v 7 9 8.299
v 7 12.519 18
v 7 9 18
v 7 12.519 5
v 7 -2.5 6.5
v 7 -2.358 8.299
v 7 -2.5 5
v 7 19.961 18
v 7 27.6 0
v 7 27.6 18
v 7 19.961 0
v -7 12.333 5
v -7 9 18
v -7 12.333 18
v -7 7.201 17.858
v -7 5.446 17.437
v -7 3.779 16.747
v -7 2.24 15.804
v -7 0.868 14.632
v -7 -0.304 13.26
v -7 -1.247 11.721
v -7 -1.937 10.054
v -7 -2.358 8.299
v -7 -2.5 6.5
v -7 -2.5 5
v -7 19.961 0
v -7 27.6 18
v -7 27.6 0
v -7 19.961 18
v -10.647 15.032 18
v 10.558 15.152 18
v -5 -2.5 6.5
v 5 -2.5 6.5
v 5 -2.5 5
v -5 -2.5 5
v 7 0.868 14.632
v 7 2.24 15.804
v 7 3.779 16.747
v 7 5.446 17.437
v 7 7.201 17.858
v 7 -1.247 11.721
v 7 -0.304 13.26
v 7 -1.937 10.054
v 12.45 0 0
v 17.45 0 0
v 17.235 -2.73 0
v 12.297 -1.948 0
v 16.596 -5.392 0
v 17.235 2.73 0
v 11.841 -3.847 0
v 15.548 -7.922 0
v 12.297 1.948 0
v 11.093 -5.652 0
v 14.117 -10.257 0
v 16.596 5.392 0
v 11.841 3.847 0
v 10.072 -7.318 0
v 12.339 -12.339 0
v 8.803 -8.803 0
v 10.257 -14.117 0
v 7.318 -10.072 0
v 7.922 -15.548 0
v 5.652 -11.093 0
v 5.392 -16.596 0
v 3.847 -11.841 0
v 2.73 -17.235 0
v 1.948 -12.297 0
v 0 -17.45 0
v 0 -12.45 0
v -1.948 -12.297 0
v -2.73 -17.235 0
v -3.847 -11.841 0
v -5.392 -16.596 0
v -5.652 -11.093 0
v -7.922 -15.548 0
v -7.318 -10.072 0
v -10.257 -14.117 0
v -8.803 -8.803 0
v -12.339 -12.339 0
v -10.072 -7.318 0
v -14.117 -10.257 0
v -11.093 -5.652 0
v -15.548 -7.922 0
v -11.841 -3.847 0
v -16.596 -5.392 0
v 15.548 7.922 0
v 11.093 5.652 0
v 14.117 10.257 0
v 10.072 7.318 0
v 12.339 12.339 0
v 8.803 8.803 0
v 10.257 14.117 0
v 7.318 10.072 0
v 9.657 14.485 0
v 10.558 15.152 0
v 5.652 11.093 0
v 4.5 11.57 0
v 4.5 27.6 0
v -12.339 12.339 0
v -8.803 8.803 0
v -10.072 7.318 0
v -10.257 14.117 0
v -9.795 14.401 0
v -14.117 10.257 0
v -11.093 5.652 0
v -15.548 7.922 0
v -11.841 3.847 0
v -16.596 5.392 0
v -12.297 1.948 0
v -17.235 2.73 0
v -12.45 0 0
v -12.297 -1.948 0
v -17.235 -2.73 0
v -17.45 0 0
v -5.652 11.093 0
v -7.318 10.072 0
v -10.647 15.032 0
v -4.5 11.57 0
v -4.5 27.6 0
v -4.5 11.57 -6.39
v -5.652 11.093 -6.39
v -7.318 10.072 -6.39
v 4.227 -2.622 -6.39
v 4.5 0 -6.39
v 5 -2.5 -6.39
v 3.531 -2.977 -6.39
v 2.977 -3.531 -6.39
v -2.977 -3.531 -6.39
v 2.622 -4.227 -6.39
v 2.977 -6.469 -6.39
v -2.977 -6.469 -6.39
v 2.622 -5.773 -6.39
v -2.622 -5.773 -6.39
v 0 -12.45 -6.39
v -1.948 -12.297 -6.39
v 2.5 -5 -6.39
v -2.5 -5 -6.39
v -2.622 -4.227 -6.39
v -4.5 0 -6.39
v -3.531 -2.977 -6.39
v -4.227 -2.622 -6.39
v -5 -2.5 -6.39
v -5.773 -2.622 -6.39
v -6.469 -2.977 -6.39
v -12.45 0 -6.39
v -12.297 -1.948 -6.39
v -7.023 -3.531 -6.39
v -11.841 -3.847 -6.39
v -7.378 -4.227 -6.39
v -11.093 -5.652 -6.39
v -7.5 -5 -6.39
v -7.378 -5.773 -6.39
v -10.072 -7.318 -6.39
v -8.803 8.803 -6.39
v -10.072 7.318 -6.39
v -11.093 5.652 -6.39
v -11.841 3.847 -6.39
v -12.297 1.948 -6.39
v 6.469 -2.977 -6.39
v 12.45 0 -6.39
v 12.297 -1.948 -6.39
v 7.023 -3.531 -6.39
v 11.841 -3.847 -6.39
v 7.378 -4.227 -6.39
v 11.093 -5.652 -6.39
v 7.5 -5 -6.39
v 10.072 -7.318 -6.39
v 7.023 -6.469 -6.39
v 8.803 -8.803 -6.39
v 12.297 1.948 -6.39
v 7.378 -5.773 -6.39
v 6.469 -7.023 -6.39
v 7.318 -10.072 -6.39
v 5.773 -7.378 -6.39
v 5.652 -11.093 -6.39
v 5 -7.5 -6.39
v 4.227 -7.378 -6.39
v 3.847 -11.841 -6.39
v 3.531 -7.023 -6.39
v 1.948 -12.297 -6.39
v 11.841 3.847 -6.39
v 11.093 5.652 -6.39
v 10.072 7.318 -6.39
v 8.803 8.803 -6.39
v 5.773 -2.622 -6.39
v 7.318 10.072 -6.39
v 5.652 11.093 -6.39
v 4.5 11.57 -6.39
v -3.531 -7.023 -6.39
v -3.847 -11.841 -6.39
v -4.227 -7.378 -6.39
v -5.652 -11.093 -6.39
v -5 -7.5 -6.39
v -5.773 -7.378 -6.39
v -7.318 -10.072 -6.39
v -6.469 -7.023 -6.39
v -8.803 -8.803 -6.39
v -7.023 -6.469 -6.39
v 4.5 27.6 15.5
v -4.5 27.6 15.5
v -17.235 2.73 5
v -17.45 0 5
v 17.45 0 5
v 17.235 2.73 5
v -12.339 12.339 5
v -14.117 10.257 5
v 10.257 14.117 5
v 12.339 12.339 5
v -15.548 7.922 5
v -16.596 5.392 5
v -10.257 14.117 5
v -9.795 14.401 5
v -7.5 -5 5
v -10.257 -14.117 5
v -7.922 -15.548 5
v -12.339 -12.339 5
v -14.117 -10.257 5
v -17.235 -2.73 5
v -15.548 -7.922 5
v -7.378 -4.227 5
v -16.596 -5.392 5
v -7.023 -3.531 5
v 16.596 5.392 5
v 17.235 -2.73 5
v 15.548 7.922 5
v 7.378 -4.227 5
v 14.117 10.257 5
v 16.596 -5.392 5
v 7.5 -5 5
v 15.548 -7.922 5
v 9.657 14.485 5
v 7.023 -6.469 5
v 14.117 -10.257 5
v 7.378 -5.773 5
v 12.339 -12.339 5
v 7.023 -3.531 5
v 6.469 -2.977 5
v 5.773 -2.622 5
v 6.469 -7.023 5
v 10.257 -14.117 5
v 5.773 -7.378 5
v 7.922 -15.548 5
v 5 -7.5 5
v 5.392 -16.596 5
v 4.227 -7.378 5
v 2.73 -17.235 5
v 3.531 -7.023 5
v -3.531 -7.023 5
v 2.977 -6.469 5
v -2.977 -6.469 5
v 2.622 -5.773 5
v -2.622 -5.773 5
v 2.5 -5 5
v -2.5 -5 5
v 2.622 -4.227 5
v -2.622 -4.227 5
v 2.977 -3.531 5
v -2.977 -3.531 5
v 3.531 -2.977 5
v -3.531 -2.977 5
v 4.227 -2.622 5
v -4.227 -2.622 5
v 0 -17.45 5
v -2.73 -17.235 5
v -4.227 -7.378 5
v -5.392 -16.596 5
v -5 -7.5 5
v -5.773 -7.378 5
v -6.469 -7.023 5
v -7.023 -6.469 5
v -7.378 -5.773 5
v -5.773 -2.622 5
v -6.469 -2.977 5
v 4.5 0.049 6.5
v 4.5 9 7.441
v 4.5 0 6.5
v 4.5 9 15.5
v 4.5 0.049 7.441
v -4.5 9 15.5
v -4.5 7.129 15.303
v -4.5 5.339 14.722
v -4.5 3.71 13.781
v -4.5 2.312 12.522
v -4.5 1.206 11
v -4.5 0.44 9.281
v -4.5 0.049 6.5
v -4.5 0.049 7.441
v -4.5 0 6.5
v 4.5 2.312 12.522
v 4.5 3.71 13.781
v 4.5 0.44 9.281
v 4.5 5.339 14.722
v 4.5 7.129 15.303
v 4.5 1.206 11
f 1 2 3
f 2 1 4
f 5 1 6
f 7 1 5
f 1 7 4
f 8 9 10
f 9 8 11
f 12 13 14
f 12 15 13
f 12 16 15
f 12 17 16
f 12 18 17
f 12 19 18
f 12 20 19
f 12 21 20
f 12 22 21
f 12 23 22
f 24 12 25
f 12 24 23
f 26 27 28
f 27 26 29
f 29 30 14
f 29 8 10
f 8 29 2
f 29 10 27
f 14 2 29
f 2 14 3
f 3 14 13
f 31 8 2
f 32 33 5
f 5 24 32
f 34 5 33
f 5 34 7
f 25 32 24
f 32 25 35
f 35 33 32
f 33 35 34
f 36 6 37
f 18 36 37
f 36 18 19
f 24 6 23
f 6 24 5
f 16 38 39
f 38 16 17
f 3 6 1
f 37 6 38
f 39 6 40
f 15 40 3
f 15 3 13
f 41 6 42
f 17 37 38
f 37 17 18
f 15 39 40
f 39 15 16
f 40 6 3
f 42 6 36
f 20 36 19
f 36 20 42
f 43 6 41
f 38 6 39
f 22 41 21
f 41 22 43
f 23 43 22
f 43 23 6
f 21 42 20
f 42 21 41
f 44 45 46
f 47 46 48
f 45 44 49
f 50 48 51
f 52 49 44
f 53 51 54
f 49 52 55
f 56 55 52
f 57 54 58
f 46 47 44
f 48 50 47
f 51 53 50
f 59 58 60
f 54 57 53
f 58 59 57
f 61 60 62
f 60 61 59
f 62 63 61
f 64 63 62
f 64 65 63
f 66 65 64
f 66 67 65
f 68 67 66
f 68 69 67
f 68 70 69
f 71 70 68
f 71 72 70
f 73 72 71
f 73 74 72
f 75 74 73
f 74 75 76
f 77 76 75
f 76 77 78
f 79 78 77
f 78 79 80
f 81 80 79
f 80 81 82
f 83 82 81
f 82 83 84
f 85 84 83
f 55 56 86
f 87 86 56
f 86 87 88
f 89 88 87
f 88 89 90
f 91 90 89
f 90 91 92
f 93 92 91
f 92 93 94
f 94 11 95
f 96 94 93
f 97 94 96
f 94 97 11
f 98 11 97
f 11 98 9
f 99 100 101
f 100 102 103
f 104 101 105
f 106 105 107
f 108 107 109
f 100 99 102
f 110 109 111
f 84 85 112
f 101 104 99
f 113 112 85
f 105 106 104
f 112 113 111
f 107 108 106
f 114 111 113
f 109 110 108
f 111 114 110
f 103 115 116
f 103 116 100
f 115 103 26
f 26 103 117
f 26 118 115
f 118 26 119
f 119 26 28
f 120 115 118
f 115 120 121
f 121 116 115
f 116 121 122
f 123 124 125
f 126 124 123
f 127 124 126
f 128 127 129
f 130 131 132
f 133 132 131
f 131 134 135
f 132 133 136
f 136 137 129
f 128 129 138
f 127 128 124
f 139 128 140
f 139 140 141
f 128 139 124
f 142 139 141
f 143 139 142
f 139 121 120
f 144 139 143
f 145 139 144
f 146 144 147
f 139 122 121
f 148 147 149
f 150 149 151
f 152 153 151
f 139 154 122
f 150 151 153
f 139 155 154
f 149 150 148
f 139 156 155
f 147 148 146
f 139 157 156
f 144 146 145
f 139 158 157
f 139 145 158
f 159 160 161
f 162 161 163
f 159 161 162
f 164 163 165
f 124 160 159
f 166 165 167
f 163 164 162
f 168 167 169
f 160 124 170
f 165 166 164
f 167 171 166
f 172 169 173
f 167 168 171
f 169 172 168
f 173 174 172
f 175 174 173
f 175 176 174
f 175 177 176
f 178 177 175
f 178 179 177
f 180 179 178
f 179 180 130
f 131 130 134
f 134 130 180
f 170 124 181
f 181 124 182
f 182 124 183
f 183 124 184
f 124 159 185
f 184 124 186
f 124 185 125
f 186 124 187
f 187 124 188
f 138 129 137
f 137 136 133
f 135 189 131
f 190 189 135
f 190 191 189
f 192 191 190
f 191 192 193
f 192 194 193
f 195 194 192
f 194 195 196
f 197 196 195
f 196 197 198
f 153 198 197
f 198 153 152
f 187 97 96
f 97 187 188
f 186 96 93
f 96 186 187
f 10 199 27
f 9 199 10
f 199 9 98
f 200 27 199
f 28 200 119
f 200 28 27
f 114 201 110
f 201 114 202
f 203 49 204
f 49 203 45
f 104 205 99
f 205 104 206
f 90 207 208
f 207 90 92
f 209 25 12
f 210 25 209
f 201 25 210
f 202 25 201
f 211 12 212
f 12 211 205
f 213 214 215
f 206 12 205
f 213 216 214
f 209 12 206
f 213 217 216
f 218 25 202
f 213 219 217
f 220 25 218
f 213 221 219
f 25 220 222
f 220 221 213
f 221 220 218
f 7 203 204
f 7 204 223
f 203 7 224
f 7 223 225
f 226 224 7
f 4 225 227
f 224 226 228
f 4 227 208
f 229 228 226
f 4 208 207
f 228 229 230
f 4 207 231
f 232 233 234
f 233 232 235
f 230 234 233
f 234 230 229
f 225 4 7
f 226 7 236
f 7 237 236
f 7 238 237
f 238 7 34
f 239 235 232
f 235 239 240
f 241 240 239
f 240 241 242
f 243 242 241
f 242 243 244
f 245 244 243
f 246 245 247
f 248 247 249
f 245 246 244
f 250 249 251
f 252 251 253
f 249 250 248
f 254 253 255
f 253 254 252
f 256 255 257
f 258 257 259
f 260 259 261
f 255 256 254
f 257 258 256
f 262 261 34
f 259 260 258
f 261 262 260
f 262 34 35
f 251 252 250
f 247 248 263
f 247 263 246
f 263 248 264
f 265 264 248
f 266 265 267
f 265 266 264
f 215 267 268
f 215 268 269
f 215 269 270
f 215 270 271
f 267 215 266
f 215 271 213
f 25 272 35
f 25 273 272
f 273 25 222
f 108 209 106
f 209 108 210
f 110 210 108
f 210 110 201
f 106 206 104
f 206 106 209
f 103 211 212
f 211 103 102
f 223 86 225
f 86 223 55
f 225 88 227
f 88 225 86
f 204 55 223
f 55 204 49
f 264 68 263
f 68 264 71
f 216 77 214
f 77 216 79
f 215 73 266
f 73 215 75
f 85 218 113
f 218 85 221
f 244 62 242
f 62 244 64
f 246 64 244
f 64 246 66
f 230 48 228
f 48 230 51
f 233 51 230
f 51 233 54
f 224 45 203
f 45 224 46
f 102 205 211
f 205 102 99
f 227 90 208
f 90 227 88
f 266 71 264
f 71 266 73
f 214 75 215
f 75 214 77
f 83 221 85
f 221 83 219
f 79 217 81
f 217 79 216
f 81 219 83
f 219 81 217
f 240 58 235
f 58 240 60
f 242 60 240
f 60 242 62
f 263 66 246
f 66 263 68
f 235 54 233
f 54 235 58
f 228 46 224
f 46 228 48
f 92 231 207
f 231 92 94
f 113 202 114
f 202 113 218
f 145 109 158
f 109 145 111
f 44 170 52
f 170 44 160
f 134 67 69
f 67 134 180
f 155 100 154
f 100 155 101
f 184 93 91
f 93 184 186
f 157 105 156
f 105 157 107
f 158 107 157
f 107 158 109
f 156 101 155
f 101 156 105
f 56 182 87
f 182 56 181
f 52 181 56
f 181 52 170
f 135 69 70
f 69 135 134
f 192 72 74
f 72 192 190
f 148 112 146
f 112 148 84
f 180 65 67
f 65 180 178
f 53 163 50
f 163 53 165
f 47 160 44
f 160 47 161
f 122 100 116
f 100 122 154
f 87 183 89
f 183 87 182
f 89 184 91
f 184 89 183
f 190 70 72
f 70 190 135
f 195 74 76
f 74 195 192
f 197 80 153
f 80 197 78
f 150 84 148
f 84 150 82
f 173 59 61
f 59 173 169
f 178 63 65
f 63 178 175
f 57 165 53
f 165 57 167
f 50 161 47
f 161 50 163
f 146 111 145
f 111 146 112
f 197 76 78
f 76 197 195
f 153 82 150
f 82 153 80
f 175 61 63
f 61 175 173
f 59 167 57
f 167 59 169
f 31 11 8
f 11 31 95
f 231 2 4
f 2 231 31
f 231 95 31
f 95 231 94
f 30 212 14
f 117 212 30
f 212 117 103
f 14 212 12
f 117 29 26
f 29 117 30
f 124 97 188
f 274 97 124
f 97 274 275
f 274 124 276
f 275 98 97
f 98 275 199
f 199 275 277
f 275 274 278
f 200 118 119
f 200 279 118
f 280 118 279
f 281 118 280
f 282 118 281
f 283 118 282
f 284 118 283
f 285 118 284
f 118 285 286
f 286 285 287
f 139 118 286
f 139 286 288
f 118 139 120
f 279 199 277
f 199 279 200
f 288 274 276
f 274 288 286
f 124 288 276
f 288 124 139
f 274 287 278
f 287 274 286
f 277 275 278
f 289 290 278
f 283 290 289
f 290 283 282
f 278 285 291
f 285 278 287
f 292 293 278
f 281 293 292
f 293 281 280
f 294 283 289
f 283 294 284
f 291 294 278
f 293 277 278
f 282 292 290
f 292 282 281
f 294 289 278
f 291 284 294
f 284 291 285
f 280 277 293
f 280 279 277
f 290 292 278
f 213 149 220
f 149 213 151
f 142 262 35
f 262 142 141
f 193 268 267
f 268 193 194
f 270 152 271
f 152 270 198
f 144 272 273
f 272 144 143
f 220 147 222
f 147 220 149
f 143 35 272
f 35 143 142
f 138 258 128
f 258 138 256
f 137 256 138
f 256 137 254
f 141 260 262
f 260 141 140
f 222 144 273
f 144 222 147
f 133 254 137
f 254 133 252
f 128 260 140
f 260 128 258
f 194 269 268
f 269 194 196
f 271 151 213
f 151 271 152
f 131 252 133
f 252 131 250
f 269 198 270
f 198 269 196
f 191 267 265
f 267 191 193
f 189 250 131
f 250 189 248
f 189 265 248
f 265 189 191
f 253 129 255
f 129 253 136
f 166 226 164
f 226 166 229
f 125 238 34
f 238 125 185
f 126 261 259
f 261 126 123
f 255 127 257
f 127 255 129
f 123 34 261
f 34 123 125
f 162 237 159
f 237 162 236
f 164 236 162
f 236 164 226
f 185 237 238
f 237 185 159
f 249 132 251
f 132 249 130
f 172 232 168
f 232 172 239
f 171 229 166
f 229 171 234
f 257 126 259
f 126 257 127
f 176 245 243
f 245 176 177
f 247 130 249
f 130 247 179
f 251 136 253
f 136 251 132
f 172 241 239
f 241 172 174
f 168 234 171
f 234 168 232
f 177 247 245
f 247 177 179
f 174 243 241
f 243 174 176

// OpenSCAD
// file: nut_clamp.scad
// nut_clamps.scad
// Captive nut holders and lateral braces for Angled EzStruder Holders for Rostock MAX V2.
// By Gregg Christopher, 2015
// This file is public domain.
// The Rostock Max V2 is by SeeMeCNC: seemecnc.com

include <extruder_constants.scad>

module nut_clamp() {
  // Space for an 6-32 captive nut
  nut_radius = 4.0 / cos(30) * 1.05; // Added 5% allowance for shrinkage and bridging goop. 
  nut_height = 3.0;
  translate([-nut_gap_width/2, -baseplate_thickness/2, 0]) 
  difference() {
    intersection() {
      rotate([0, 90, 0]) scale([1, 1, 1]) cylinder(r = 2*(screw_attachment_thickness + nut_gap_thickness), h = nut_gap_width, $fn = 10*res);
      translate([0, 0, 0]) cube([nut_gap_width, 2*(screw_attachment_thickness + nut_gap_thickness), 2*(screw_attachment_thickness + nut_gap_thickness)]);
    }
    // Trim shape for insertion to main extruder holder body. 
    translate([-manifold_slop, -manifold_slop, -manifold_slop]) cube([nut_gap_width + 2*manifold_slop, baseplate_thickness, screw_attachment_thickness + manifold_slop]);
    translate([-manifold_slop, -manifold_slop, screw_attachment_thickness + nut_gap_thickness]) cube([nut_gap_width + 2*manifold_slop, baseplate_thickness, screw_attachment_thickness + nut_gap_thickness + manifold_slop]);
    // Cutout for captive nut
    translate([nut_gap_width/2, baseplate_thickness/2, screw_attachment_thickness + nut_gap_thickness - nut_height]) rotate([0, 0, 90]) cylinder(r = nut_radius, h = nut_height + manifold_slop, $fn = 6);
    // Screw hole
    translate([nut_gap_width/2, baseplate_thickness/2, screw_attachment_thickness - manifold_slop]) cylinder(r = screw_hole_r, h = screw_attachment_thickness + 2*manifold_slop, $fn = 20);
  }
}

translate([0, 0, nut_gap_width/2])
rotate([0, 90, 0]) nut_clamp(); 
// file: extruder_constants.scad
// extruder_constants.scad
// A variety of driving variables for angled EzStruder Holders for Rostock MAX V2.
// By Gregg Christopher, 2015
// This file is public domain.
// The Rostock Max V2 is by SeeMeCNC: seemecnc.com

// Tolerance Variables
manifold_slop = 0.01;
res = 10;



motor_cutout_x_pos = -169.329;
motor_cutout_y_pos = 467.08;

motor_x_size = 42.49;
motor_y_size = motor_x_size;

lifter_x_pos = 270.15;
lifter_y_pos = 401.6;


motor_holder_size = 54.3;

melamine_thickness = 6.4;
//baseplate_thickness = melamine_thickness;
baseplate_thickness = 12;

ezstruder_mount_height = 28;

lifter_radius = 8.5;
lifter_bottom_distance = 17.9;

motor_side_brace_width = 10;
motor_brace_length = motor_x_size/2 + motor_holder_size/2;
brace_bevel_scale = 2;


motor_mount_width = motor_holder_size + 2*motor_side_brace_width;

top_plate_x_pos = 36.81;
top_plate_y_pos = 296.4;

// Used to preview position of Rostock MAX V2 top plate
module top_place_centered() {
  translate([-top_plate_x_pos, -top_plate_y_pos]) scale([25.4, 25.4]) import("top_plate.dxf");
}

// Used to preview center hole of Rostock MAX V2 top plate
module top_hole_centered() {
  translate([-top_plate_x_pos, -top_plate_y_pos]) scale([25.4, 25.4]) import("top_hole.dxf");
}

top_center_hole_radius = 12.45;


screw_line_origin = 14.87;

screw_line_angle = 53.5;

//screw_hole_r = 1.7;
screw_hole_r = 1.8;
screw1_dist = 18.66;
screw2_dist = 63;

screw_attachment_thickness = 10;
nut_gap_thickness = 5;
nut_gap_width = 10;


center_hole_plate_radius = top_center_hole_radius + 5;
top_plate_thickness = 4;


screw_bracket_1_pos = 35;
//screw_bracket_2_pos = 100;
screw_bracket_2_pos = 88;

nut_clearance_r = 6;
bracket_wall_thickness = 4;
bracket_length = 8;
bracket_depth_offset = 2.55;
extra_screw_depth = 5;
// main file
// filament_wire_guide.scad
// Angled EzStruder Holders for Rostock MAX V2.
// Wire and filament guide for the center hole of the top plate. 
// By Gregg Christopher, 2015
// This file is public domain. 
// The Rostock Max V2 is by SeeMeCNC: seemecnc.com

include <extruder_constants.scad>
use <extruder_holders.scad>

x_size = 14;

module filament_wire_guide() {
  rotate([0, 180, 0])
  difference() {
    wire_run_hull = 2.5;
    wire_run_x = x_size - 5;
    wire_run_y = baseplate_thickness*1.5 - 2.5;
    wire_run_bevel_r = 18;
  
    top_plate_thickness = 5;
  
    union() {
      intersection() {
        union() {
          translate([-wire_run_x/2 - wire_run_hull, wire_run_bevel_r/2, -wire_run_y - wire_run_hull]) cube([wire_run_x + 2*wire_run_hull, 30 + wire_run_hull + manifold_slop, wire_run_y + 2*wire_run_hull]);
          translate([-wire_run_x/2 - wire_run_hull, - wire_run_hull, -wire_run_y + wire_run_bevel_r/2]) cube([wire_run_x + 2*wire_run_hull, top_center_hole_radius + 2*wire_run_hull, wire_run_y + 2*top_plate_thickness + 2*manifold_slop]);
          translate([-wire_run_x/2 - wire_run_hull, wire_run_bevel_r/2, -wire_run_y + wire_run_bevel_r/2]) rotate([0, 90, 0]) cylinder(r = wire_run_bevel_r/2 + wire_run_hull, h = wire_run_x+ 2*wire_run_hull, $fn = 4*res);
        }
        union() {
          translate([0, 0, -baseplate_thickness*1.5]) cylinder(r = center_hole_plate_radius, h = baseplate_thickness*1.5, $fn = 4*res);
          translate([0, 0, -manifold_slop]) cylinder(r = top_center_hole_radius, h = melamine_thickness, $fn = 4*res);
          translate([-x_size/2, 10, -baseplate_thickness*1.5]) cube([x_size, 17.6, baseplate_thickness*1.5]);
        }
      }
      translate([0, 0, -top_plate_thickness]) cylinder(r = center_hole_plate_radius, h = top_plate_thickness, $fn = 4*res);
      translate([0, 0, -manifold_slop]) cylinder(r = top_center_hole_radius, h = melamine_thickness, $fn = 4*res);
  
      rotate([0, 0, screw_line_angle]) translate([5.9, 12, -baseplate_thickness*1.5]) cube([center_hole_plate_radius - 2, center_hole_plate_radius - 11.95, baseplate_thickness*1.5]);
      rotate([0, 0, -screw_line_angle]) translate([-center_hole_plate_radius - 0.3, 12, -baseplate_thickness*1.5]) cube([baseplate_thickness, center_hole_plate_radius - 11.95, baseplate_thickness*1.5]);
    }
  
    translate([-wire_run_x/2, wire_run_bevel_r/2, -wire_run_y]) cube([wire_run_x, 30 + manifold_slop, wire_run_y + 2*manifold_slop]);
    translate([-wire_run_x/2, 0, -wire_run_y + wire_run_bevel_r/2]) cube([wire_run_x, top_center_hole_radius, wire_run_y + 2*top_plate_thickness + 2*manifold_slop]);
    translate([-wire_run_x/2, wire_run_bevel_r/2, -wire_run_y + wire_run_bevel_r/2]) rotate([0, 90, 0]) cylinder(r = wire_run_bevel_r/2, h = wire_run_x, $fn = 3*res);
  
    filament_hole_r = 2.5;
    filament_hole_x = 5;
    filament_hole_y = -5;
    translate([filament_hole_x, filament_hole_y, -baseplate_thickness*1.5 - manifold_slop]) cylinder(r = filament_hole_r, h = baseplate_thickness*1.5 + top_plate_thickness + screw_attachment_thickness + 2*manifold_slop, $fn = 2*res);
    translate([-filament_hole_x, filament_hole_y, -baseplate_thickness*1.5 - manifold_slop]) cylinder(r = filament_hole_r, h = baseplate_thickness*1.5 + top_plate_thickness + screw_attachment_thickness + 2*manifold_slop, $fn = 2*res);
  
  }
}

// Optional raft to anchor generated support materials.
%translate([0, 0, -melamine_thickness])
linear_extrude(height = 0.4)
difference() {
  offset(r = 2)
  projection() {
    filament_wire_guide();
  }
  circle(r = top_center_hole_radius + .7, $fn = 4*res);
}

filament_wire_guide();
